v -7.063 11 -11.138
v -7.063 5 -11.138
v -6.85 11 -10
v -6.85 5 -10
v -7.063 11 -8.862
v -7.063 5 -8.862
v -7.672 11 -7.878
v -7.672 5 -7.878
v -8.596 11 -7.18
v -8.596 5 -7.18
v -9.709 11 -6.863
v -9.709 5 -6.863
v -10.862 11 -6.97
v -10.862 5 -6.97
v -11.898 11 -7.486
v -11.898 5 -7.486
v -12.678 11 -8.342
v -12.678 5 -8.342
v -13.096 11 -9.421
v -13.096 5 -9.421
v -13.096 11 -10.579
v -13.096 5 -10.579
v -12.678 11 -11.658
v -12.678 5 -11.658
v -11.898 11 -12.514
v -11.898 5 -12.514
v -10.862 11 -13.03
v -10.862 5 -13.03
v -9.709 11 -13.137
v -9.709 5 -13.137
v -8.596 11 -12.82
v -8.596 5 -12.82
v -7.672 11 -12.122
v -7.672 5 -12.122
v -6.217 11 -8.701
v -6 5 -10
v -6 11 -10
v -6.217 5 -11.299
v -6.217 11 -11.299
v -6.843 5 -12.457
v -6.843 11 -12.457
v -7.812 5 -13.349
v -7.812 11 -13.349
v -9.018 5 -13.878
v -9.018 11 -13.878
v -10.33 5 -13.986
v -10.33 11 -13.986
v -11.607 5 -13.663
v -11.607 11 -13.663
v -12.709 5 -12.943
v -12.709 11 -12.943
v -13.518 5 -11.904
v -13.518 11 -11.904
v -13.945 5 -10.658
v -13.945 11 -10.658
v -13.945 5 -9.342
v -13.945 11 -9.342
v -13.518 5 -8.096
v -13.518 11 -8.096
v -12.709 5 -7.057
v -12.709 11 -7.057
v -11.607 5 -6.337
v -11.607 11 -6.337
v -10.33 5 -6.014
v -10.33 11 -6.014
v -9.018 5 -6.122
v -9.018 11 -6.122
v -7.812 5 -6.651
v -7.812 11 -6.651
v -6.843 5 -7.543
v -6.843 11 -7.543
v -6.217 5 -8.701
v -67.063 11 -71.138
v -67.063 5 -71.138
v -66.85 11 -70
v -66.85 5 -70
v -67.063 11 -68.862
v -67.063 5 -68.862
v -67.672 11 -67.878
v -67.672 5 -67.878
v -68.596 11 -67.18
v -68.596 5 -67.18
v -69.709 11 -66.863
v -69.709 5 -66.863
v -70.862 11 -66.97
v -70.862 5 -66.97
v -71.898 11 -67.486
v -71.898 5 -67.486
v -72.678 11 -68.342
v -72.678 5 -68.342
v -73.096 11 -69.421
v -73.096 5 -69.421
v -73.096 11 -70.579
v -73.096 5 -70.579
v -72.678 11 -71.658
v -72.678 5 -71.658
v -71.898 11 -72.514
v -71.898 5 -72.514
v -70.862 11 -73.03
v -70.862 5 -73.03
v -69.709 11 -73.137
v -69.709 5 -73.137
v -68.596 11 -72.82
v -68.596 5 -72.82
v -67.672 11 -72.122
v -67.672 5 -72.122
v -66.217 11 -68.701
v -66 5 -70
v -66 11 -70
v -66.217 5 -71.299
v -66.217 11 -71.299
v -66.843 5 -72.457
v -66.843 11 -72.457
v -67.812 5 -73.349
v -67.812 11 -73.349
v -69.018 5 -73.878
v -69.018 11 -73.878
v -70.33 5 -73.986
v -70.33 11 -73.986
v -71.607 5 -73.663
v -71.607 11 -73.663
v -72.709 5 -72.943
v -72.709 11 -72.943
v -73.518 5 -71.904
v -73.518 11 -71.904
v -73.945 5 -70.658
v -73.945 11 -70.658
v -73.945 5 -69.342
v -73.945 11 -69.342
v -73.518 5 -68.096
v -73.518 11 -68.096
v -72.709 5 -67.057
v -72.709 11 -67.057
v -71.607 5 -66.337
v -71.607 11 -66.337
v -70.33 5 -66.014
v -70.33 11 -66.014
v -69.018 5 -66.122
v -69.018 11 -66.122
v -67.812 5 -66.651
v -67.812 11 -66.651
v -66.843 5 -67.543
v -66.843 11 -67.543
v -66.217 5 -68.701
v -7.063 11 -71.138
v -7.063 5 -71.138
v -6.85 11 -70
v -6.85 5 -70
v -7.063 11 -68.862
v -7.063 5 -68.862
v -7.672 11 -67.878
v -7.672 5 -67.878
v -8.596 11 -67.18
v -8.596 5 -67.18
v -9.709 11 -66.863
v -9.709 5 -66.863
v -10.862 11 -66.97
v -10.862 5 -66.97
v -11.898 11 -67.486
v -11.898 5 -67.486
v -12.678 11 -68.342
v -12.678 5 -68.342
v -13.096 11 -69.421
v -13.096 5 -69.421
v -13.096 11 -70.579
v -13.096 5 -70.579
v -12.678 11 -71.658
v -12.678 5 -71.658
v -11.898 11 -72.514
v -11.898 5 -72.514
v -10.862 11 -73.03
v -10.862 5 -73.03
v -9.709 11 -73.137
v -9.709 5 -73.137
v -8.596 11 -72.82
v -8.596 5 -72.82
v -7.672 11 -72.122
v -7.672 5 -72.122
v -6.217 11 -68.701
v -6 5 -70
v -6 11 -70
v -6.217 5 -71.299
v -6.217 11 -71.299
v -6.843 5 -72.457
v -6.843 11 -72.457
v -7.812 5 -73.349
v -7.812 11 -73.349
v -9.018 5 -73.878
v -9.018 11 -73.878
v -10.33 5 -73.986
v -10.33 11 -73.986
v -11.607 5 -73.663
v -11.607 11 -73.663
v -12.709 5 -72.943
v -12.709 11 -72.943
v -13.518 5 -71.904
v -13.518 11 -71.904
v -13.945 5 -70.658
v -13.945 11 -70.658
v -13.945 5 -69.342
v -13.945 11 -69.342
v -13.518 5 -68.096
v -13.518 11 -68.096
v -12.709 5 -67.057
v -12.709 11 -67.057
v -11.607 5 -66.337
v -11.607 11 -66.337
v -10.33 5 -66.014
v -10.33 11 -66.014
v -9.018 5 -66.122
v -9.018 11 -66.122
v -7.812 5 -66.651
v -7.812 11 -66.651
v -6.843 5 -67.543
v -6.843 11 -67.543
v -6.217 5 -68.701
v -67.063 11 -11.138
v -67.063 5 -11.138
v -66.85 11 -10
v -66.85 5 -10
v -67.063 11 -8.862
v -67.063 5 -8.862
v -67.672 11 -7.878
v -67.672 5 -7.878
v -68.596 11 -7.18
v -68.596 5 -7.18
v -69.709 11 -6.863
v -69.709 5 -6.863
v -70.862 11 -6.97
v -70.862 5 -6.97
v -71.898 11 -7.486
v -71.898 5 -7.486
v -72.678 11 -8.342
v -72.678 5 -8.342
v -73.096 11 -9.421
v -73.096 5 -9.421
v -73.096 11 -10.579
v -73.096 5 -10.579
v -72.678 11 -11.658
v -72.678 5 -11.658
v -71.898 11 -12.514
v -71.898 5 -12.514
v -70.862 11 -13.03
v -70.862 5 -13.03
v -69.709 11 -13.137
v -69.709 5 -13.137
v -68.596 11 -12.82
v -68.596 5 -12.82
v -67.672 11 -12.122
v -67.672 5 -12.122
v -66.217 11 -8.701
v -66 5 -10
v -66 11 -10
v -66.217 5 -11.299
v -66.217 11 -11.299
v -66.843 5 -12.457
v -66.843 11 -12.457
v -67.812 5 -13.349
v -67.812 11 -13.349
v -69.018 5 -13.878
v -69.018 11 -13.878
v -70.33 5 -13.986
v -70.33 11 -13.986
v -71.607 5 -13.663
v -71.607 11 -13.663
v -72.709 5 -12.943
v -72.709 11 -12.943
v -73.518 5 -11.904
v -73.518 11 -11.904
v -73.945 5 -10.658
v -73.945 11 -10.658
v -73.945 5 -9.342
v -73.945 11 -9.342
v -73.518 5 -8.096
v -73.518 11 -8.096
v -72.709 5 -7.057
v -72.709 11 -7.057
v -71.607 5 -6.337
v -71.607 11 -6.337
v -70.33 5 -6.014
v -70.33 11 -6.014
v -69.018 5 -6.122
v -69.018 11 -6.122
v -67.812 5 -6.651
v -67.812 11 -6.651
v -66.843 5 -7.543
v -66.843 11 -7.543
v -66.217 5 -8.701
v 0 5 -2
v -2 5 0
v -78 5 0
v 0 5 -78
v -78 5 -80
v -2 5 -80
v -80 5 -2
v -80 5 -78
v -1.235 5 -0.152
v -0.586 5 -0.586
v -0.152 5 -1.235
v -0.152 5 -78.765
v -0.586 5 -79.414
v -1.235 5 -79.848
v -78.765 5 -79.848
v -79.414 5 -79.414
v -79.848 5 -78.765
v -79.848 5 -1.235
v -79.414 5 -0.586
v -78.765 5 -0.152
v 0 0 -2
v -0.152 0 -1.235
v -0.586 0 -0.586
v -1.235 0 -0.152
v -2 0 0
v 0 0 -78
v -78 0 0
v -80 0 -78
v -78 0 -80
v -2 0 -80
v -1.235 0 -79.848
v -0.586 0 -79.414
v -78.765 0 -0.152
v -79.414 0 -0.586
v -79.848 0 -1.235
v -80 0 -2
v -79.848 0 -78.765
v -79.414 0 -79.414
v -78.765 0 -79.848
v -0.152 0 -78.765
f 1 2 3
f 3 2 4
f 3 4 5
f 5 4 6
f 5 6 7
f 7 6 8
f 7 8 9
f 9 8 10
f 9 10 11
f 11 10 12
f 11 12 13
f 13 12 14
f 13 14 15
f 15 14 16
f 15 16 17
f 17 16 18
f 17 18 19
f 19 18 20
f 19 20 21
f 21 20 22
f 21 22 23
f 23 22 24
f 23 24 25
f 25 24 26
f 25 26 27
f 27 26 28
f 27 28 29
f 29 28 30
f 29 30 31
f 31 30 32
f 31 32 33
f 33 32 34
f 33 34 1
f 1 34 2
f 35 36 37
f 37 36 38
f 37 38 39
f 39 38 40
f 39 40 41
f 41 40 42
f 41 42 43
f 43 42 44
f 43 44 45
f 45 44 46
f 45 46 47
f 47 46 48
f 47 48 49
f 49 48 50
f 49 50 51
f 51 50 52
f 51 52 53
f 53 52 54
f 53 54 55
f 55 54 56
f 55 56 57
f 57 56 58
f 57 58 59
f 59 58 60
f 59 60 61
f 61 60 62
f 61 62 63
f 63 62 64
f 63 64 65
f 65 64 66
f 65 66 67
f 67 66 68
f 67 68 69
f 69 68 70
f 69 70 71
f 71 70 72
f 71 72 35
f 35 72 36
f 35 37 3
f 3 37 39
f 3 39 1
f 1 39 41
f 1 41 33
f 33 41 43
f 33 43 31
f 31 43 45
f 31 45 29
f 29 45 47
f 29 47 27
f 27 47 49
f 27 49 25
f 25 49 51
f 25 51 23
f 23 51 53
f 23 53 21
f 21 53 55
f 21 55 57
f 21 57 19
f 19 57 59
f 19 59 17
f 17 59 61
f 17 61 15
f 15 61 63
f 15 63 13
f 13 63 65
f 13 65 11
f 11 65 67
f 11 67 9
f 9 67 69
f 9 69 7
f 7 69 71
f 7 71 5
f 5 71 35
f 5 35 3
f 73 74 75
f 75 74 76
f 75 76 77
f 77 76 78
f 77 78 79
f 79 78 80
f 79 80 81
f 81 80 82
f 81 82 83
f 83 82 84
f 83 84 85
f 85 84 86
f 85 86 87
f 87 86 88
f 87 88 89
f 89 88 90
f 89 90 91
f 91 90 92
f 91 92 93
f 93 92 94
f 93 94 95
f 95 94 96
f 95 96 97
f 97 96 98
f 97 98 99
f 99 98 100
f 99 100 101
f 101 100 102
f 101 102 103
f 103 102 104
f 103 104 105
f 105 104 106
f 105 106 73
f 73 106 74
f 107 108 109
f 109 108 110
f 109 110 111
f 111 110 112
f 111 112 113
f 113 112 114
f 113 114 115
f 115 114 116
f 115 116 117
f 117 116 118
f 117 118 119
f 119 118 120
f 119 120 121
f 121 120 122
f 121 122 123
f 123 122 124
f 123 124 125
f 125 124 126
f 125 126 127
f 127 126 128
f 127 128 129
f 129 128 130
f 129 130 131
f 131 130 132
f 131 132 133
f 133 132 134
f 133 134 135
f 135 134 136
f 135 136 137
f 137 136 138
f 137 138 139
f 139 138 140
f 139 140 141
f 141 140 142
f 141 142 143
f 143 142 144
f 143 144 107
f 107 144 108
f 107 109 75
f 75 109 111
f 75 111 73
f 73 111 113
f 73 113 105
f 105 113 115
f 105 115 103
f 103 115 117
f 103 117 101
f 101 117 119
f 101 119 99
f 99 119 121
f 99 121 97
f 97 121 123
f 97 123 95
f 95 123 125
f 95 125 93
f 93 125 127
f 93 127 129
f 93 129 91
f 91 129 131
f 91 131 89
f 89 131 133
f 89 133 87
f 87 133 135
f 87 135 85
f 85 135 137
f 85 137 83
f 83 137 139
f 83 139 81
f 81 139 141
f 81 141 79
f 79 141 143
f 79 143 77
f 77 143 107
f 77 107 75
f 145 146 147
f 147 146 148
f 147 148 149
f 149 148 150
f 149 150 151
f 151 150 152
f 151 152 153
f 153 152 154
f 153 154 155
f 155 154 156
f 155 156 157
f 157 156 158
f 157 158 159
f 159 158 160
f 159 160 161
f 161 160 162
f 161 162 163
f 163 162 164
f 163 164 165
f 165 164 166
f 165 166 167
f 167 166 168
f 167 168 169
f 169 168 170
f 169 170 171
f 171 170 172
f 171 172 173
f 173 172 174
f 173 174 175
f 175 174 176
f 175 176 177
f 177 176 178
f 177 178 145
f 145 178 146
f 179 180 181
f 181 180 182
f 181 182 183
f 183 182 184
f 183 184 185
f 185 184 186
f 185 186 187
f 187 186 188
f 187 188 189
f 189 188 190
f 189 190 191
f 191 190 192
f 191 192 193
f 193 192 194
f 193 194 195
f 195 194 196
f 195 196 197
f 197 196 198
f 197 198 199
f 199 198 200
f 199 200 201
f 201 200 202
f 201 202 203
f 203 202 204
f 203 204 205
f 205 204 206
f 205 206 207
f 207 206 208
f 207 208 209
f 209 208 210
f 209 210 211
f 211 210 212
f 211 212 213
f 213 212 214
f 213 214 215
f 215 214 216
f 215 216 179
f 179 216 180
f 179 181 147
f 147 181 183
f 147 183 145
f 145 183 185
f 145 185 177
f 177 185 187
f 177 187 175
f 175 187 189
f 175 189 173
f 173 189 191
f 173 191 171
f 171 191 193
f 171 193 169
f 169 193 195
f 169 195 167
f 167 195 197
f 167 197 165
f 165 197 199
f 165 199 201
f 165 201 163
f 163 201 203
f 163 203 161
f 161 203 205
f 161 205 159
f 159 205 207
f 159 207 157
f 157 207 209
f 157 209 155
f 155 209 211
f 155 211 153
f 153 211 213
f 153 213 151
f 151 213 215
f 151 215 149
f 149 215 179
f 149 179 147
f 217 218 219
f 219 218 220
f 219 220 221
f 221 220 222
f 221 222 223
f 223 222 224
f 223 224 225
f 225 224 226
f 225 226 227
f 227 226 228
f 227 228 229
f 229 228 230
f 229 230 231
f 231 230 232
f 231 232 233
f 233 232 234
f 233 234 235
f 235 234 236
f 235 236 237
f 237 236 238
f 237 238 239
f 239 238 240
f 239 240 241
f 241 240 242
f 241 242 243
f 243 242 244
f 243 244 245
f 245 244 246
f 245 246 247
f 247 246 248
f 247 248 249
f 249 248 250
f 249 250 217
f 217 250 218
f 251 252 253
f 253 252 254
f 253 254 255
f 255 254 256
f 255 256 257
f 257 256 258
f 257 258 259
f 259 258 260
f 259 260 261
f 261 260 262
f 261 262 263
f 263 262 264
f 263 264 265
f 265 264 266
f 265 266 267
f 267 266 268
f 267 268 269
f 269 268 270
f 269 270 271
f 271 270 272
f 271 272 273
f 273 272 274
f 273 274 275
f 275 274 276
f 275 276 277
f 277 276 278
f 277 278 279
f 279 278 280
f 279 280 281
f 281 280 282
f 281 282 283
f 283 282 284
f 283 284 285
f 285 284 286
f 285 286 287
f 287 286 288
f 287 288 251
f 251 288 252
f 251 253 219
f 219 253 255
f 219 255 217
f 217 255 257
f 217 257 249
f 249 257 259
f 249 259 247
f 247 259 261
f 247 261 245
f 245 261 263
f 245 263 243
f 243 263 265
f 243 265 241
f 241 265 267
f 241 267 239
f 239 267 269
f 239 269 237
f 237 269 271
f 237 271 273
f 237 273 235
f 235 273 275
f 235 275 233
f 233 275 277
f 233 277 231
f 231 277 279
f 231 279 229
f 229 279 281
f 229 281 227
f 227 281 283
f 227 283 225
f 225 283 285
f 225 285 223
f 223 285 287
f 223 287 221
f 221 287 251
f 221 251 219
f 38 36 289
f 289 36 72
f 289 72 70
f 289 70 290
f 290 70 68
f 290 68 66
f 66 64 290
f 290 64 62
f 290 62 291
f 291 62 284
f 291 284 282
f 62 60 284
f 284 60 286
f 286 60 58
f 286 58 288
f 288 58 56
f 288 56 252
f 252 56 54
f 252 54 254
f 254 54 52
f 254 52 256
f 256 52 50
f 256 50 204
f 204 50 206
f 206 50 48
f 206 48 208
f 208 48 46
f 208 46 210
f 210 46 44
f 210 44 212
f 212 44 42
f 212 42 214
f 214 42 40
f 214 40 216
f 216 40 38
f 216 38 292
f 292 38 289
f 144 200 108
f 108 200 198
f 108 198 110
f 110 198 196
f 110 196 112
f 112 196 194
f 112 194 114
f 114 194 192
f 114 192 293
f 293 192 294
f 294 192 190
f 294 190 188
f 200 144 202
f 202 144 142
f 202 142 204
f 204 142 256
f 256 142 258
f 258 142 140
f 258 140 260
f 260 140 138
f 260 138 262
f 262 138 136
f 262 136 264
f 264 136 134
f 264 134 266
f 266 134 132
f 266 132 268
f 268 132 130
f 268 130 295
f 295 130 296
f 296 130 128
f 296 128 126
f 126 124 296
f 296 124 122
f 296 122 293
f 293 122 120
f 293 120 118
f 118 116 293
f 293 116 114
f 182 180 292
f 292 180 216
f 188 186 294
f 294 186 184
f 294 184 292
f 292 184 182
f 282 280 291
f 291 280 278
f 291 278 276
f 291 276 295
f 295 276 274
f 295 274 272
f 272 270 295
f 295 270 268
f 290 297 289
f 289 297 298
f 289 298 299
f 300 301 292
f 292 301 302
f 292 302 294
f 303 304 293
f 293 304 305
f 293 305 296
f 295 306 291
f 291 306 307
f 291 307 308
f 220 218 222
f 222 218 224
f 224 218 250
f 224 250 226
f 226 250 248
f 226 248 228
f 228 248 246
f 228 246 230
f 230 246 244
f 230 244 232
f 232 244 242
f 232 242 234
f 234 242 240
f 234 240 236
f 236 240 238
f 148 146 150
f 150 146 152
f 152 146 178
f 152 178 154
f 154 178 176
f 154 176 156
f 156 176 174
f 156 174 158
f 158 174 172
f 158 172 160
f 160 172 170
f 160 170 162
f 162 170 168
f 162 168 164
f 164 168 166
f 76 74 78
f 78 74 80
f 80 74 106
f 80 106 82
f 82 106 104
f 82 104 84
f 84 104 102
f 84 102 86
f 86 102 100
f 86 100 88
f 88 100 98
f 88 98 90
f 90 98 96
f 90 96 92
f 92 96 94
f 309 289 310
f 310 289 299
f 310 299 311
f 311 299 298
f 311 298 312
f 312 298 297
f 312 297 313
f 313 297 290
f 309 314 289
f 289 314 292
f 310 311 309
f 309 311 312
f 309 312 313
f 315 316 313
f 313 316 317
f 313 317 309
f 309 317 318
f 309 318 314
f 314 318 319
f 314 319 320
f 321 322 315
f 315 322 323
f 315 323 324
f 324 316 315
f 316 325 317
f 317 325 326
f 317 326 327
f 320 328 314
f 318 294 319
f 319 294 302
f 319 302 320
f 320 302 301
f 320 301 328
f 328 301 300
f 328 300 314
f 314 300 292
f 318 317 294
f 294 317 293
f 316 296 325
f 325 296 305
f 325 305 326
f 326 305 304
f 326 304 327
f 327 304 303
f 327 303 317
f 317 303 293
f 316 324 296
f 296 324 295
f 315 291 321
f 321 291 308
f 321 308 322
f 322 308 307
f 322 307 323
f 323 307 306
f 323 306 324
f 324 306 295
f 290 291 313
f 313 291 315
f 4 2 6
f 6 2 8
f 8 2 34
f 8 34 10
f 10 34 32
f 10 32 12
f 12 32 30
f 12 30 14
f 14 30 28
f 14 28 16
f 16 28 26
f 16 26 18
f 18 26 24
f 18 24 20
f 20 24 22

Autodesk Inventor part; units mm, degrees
ref_plane "YZ Plane" through (0, 0, 0) normal (1, 0, 0) x (0, 1, 0)
ref_plane "XZ Plane" through (0, 0, 0) normal (0, 1, 0) x (-1, 0, 0)
ref_plane "XY Plane" through (0, 0, 0) normal (0, 0, 1) x (1, 0, 0)
sketch "Sketch1" plane through (0, 0, 0) normal (0, 1, 0) x (-1, 0, 0)
  line L0 (0, 0) -> (80, 0)
  line L1 (80, 0) -> (80, -80)
  line L2 (80, -80) -> (0, -80)
  line L3 (0, -80) -> (0, 0)
  dimension "d0" = 80
extrude "Extrusion1" add sketch "Sketch1" along normal blind 5
fillet "Fillet1" radius 2 4 edges at (-80, 2.5, 0) (-80, 2.5, -80) (0, 2.5, -80) (0, 2.5, 0)
sketch "Sketch2" plane through (0, 5, 0) normal (0, 1, 0) x (1, 0, 0)
  line L0 (-10, 10) -> (-70, 10) construction
  line L1 (-70, 10) -> (-70, 70) construction
  line L2 (-70, 70) -> (-10, 70) construction
  line L3 (-10, 70) -> (-10, 10) construction
  line L4 (0, 2) -> (0, 78) construction
  line L5 (-78, 0) -> (-2, 0) construction
  circle A0 centre (-70, 10) radius 3.15
  circle A1 centre (-70, 70) radius 3.15
  circle A2 centre (-10, 70) radius 3.15
  circle A3 centre (-10, 10) radius 3.15
  circle A4 centre (-70, 10) radius 4
  circle A5 centre (-70, 70) radius 4
  circle A6 centre (-10, 70) radius 4
  circle A7 centre (-10, 10) radius 4
  point P0 (0, 0)
  dimension "d4" = 60
  dimension "d5" = 10
  dimension "d6" = 10
  dimension "d7" = 6.3
  dimension "d8" = 8
extrude "Extrusion2" add sketch "Sketch2" along normal blind 6
equation "\"d0\" = cradle_width"
equation "\"d4\" = rod_dist"
equation "\"d5\" = 0.5 * cradle_width - 0.5 * rod_dist"
equation "\"d6\" = 0.5 * cradle_width - 0.5 * rod_dist"
equation "\"d7\" = rod_diameter + rod_tolerance"
equation "\"d8\" = post_diameter"
equation "\"cradle_width\" = 80"
equation "\"rod_diameter\" = 6"
equation "\"rod_tolerance\" = 0.3"
equation "\"post_diameter\" = 8"
equation "\"rod_dist\" = 60"
properties part number "cradle_top"
